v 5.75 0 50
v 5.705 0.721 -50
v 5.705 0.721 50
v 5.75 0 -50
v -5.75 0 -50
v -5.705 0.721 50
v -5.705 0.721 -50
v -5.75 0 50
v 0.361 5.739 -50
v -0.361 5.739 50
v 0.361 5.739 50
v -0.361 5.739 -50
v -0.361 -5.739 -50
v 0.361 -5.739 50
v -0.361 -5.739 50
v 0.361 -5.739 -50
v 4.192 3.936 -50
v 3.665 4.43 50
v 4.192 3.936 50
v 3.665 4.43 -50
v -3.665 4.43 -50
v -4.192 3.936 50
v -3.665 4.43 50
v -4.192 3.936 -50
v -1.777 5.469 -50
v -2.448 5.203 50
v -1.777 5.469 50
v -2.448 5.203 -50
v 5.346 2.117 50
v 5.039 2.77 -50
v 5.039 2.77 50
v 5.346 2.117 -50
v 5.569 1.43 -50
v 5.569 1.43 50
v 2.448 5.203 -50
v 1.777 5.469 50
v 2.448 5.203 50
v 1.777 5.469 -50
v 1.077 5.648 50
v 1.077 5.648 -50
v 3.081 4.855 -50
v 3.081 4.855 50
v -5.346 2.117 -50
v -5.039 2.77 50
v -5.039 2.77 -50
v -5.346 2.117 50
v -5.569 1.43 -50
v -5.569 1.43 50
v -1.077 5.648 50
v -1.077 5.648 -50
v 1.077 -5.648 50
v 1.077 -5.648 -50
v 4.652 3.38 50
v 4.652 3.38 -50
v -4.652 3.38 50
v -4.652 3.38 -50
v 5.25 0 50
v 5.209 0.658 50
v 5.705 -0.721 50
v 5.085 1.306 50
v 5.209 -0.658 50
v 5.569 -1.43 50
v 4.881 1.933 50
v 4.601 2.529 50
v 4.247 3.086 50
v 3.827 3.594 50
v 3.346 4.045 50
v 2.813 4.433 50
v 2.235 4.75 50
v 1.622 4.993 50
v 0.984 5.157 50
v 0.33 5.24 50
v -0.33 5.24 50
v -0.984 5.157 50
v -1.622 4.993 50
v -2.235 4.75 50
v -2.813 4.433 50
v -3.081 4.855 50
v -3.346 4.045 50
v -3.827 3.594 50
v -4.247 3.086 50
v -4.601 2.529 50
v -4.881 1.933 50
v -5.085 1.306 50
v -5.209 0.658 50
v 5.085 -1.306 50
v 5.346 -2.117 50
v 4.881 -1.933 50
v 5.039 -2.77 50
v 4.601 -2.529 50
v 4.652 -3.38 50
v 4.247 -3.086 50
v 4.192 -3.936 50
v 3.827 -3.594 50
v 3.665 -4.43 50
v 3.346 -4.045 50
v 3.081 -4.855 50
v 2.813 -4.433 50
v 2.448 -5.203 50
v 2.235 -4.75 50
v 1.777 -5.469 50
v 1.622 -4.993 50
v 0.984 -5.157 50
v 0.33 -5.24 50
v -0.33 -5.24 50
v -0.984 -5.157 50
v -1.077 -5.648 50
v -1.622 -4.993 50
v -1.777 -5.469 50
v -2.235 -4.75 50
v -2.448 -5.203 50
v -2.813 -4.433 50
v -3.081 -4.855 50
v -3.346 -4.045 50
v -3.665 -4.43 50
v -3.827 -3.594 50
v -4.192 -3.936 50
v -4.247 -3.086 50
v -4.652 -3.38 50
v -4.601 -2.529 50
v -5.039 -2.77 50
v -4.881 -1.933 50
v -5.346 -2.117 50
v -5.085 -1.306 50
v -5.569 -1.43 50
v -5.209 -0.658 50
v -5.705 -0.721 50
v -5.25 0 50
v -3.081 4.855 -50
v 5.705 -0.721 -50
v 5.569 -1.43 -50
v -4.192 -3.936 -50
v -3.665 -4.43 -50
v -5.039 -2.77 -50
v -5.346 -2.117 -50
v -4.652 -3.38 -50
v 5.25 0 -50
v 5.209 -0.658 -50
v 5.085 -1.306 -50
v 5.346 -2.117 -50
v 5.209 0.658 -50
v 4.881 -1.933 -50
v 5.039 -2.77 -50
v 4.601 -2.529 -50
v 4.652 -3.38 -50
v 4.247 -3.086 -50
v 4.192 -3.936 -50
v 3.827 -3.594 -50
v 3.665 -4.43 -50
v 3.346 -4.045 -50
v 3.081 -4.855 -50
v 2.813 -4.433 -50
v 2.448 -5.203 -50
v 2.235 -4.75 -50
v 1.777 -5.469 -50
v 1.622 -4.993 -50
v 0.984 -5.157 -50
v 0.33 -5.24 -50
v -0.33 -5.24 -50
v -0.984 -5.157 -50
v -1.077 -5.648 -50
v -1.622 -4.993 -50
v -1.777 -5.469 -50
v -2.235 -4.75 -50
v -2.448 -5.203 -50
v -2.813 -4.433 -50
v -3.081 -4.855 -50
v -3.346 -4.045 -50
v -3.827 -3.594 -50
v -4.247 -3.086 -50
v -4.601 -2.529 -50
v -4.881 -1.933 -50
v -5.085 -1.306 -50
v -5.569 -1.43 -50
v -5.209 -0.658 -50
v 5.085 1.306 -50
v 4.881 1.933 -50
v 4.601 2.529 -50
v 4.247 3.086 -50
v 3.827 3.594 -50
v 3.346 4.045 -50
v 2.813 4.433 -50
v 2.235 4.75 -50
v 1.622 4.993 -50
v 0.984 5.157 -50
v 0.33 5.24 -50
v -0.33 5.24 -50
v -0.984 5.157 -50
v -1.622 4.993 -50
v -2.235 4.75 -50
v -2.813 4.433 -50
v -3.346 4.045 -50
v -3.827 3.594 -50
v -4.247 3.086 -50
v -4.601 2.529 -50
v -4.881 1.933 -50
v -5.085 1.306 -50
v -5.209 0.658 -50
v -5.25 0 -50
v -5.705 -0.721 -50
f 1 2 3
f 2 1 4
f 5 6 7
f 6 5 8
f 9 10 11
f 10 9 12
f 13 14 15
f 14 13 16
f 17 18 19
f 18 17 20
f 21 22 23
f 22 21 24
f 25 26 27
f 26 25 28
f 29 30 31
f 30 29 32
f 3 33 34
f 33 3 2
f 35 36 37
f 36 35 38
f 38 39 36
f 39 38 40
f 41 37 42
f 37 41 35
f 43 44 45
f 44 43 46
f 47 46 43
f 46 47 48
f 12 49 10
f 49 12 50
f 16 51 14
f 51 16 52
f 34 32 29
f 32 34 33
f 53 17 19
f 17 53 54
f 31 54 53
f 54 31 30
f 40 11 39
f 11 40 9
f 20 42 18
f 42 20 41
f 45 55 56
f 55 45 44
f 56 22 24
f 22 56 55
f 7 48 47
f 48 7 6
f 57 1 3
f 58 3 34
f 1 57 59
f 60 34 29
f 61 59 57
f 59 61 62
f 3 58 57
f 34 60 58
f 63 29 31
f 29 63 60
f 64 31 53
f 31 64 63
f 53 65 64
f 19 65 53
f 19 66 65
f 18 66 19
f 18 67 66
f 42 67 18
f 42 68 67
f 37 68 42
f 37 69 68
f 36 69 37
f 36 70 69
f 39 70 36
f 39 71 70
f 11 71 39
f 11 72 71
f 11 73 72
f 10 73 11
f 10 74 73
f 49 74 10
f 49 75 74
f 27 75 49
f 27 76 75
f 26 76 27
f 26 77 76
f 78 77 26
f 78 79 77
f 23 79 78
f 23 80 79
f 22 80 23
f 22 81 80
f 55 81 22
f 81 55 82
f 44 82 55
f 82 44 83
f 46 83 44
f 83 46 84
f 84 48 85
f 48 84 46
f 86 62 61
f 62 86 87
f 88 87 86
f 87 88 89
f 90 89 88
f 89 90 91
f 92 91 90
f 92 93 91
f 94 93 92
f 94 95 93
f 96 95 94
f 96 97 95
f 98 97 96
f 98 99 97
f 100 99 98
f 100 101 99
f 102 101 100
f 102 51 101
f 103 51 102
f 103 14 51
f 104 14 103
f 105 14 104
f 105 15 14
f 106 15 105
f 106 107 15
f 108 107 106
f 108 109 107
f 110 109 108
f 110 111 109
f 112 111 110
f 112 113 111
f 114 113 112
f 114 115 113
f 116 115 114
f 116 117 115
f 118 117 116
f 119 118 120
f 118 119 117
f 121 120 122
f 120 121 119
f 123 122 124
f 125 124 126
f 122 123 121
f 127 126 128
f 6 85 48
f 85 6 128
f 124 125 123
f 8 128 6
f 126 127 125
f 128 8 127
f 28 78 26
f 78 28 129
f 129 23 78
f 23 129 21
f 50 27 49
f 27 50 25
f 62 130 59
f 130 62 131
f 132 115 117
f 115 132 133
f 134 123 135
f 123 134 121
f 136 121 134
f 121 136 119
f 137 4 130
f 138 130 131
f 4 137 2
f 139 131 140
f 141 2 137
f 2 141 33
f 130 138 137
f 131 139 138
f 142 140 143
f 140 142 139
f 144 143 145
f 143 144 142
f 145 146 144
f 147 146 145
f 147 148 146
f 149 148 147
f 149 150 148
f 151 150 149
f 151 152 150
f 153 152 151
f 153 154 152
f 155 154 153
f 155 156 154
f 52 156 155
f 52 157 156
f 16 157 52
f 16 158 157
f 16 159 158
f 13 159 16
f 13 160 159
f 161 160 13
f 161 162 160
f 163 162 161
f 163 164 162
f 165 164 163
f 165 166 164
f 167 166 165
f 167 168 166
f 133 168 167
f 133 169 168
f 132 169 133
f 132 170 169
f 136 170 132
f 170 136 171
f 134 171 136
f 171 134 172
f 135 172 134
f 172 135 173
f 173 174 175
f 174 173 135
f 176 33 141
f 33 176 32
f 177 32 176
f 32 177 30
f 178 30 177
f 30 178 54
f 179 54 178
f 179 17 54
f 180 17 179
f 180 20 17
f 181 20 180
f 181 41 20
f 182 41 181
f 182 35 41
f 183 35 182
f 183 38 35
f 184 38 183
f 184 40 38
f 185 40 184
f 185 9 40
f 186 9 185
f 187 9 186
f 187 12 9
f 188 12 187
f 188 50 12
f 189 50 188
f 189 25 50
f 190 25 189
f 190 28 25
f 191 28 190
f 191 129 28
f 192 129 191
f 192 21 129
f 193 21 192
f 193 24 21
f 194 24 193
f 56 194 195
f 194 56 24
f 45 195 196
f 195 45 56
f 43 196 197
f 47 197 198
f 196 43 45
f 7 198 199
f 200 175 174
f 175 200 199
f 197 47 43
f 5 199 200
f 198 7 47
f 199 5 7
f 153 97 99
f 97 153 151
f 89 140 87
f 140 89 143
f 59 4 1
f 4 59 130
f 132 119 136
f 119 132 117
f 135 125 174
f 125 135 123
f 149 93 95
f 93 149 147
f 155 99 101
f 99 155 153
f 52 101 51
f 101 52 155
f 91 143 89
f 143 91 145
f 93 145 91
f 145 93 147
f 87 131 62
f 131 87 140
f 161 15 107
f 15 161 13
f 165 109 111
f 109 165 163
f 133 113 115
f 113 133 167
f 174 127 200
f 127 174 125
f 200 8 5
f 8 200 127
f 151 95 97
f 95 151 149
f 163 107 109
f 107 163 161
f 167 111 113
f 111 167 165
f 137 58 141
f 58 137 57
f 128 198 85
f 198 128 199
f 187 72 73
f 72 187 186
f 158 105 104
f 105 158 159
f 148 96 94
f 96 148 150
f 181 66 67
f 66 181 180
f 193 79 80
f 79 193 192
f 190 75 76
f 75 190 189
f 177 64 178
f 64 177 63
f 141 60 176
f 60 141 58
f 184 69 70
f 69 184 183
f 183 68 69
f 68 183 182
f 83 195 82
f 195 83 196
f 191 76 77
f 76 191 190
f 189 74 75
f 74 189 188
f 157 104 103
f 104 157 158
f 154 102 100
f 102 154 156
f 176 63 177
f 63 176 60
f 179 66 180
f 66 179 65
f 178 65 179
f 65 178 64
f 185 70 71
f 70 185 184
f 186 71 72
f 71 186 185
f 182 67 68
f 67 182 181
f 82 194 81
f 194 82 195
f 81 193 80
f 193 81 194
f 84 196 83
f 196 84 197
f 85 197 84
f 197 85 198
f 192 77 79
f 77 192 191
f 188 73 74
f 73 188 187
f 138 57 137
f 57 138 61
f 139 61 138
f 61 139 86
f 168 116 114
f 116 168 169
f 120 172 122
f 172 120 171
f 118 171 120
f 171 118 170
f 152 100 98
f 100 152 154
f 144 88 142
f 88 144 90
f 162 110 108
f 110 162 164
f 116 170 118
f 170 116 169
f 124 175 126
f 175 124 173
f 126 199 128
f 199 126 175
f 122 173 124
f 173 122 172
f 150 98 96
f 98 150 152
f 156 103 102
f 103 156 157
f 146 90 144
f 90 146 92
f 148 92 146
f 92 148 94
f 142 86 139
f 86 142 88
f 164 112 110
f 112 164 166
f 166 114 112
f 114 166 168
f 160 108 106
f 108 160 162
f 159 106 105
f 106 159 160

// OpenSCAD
$fn = 50;


difference() {
	union() {
		translate(v = [0, 0, -50.0000000000]) {
			cylinder(h = 100, r = 5.7500000000);
		}
	}
	union() {
		translate(v = [0, 0, -100.0000000000]) {
			cylinder(h = 200, r = 5.2500000000);
		}
	}
}
